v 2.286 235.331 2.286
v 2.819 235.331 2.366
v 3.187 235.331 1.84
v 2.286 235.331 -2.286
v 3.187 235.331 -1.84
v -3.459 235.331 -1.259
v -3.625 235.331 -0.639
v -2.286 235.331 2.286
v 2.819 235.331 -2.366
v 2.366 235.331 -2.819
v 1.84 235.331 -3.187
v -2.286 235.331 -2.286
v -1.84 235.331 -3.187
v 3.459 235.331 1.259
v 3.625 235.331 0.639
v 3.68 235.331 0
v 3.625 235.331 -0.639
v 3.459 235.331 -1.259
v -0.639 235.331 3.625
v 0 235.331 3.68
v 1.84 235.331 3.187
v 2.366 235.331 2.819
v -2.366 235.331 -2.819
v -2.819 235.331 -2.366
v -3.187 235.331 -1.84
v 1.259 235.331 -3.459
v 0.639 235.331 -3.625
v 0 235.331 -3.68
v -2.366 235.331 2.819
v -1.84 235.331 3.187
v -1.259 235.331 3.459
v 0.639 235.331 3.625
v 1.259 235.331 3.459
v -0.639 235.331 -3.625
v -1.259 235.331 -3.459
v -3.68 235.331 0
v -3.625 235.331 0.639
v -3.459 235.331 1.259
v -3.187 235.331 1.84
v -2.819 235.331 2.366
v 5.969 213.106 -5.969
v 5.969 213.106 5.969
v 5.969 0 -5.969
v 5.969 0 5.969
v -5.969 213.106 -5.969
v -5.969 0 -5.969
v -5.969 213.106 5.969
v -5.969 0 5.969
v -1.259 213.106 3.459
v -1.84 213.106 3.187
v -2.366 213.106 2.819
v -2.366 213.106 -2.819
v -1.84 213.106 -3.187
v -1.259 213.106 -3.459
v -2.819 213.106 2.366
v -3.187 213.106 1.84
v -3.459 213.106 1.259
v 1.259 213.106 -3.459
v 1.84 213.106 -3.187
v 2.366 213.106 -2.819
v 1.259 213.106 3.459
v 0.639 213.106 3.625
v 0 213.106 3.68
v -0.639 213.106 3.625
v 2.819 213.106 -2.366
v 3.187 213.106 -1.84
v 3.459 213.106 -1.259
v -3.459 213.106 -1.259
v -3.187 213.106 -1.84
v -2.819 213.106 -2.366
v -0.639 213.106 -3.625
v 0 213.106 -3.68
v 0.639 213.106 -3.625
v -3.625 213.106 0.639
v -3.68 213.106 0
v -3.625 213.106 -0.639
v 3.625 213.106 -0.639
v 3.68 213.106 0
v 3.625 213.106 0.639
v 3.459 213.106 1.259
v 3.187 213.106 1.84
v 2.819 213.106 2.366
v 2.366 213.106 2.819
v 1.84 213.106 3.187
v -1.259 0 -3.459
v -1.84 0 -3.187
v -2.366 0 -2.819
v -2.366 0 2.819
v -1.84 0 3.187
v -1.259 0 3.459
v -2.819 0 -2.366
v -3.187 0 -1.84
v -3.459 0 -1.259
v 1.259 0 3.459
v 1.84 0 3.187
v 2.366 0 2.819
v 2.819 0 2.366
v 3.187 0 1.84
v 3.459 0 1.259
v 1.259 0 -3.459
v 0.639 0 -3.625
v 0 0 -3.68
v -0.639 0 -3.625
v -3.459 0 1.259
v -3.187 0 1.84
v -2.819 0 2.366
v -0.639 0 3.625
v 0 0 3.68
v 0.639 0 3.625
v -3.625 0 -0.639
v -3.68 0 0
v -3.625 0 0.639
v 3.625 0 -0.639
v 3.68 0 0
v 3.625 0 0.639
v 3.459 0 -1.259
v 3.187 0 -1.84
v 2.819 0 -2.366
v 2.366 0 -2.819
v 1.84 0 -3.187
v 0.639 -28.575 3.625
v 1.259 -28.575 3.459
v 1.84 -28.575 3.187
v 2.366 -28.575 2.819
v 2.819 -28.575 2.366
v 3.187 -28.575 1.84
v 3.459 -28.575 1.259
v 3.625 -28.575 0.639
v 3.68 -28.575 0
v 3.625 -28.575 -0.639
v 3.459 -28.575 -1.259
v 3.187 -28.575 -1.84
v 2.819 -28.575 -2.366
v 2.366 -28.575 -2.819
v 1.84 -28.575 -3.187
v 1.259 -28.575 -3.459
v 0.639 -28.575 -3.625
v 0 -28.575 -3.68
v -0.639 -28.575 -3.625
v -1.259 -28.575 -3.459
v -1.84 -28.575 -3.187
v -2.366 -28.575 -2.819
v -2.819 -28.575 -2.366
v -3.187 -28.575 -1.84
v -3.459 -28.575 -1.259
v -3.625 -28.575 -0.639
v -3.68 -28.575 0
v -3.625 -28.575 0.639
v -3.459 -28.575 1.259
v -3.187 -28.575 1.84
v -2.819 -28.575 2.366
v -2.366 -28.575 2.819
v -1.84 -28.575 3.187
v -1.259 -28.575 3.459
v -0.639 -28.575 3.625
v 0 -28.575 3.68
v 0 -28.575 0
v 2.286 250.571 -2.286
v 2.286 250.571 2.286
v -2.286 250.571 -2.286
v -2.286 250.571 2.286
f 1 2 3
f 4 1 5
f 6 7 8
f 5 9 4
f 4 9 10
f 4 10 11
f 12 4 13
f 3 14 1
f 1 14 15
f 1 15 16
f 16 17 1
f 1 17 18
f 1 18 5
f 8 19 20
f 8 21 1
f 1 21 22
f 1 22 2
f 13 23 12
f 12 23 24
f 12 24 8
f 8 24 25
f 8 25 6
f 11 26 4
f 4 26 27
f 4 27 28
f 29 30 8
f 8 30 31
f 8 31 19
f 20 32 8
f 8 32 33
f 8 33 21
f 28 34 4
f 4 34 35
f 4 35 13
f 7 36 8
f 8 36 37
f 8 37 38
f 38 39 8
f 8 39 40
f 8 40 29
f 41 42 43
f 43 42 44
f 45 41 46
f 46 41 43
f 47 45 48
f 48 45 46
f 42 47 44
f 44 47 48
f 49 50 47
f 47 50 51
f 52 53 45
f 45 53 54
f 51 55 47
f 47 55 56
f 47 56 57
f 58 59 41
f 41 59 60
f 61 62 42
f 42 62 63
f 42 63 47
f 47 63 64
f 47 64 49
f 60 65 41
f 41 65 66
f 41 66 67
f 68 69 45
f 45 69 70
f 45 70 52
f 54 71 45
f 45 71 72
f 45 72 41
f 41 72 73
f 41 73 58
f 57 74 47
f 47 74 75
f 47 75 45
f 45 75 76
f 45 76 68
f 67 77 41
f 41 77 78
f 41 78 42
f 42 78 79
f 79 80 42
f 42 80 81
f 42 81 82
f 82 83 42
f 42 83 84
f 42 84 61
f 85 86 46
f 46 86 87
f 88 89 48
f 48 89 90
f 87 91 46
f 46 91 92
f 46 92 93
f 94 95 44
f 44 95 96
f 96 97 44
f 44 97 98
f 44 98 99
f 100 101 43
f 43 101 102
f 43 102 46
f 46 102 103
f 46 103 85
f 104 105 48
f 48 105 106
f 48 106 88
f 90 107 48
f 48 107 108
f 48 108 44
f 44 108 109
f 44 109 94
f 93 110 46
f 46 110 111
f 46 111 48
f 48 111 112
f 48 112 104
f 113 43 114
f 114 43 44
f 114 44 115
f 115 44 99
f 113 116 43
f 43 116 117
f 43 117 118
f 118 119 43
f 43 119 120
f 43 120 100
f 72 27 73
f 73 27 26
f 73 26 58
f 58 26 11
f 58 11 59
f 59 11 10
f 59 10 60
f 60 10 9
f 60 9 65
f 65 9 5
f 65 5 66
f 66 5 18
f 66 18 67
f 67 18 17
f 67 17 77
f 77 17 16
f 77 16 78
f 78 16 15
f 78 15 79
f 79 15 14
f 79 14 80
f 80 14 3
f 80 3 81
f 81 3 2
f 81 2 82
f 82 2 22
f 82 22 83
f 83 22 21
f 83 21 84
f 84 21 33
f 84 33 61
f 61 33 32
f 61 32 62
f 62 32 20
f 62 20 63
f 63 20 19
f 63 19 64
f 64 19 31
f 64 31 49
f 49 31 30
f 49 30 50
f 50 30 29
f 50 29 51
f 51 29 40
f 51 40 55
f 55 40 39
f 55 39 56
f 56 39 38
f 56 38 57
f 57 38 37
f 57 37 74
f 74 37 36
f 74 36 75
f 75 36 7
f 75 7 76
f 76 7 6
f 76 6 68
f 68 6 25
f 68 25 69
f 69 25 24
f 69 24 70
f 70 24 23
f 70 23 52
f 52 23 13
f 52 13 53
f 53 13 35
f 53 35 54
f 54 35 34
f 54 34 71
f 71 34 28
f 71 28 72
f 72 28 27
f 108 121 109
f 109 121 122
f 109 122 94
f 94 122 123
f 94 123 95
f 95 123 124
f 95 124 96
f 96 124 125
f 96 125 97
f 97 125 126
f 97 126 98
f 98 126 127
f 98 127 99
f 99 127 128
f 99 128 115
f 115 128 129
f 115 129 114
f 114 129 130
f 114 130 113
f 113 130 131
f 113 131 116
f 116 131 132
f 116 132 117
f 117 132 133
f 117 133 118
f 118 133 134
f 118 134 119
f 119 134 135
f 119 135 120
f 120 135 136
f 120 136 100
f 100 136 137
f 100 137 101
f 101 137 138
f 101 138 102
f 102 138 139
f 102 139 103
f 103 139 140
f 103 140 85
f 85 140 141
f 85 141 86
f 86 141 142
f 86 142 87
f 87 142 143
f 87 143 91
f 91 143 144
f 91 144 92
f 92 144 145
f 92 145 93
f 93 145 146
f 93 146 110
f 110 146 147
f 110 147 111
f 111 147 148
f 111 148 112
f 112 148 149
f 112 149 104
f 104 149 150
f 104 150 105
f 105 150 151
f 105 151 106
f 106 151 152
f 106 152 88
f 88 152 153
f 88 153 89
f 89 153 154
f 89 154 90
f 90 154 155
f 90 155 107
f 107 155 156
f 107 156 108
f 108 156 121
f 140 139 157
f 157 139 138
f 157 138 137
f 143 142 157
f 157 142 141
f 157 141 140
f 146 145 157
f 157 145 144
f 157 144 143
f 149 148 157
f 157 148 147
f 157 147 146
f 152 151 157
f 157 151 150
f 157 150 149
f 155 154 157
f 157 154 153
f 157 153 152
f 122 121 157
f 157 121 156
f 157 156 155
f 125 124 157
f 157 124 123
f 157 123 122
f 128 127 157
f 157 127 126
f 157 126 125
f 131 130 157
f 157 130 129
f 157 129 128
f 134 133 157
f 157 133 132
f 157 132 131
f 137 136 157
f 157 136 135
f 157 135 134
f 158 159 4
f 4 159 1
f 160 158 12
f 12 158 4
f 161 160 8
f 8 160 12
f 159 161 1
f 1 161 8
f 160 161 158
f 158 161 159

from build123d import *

# Parameters (mm, degrees)
SKETCH1_W           = 11.938
SKETCH1_H           = 11.938
BOSS_EXTRUDE1_DEPTH = 213.106
SKETCH2_R           = 3.68046
BOSS_EXTRUDE2_DEPTH = 22.225
SKETCH3_R           = 3.68046
BOSS_EXTRUDE3_DEPTH = 28.575
SKETCH4_W           = 4.572
SKETCH4_H           = 4.572
BOSS_EXTRUDE4_DEPTH = 15.24


with BuildPart() as part:
    # Sketch1 → Boss-Extrude1 (new body)
    with BuildSketch(Plane(origin=(0, 0, 0), x_dir=(1, 0, 0), z_dir=(0, 1, 0))):
        Rectangle(SKETCH1_W, SKETCH1_H)
    extrude(amount=BOSS_EXTRUDE1_DEPTH)

    # Sketch2 → Boss-Extrude2 (add)
    with BuildSketch(Plane(origin=(0, 213.106, 0), x_dir=(1, 0, 0), z_dir=(0, 1, 0))):
        Circle(SKETCH2_R)
    extrude(amount=BOSS_EXTRUDE2_DEPTH)

    # Sketch3 → Boss-Extrude3 (add)
    with BuildSketch(Plane(origin=(0, 0, 0), x_dir=(-1, 0, 0), z_dir=(0, -1, 0))):
        Circle(SKETCH3_R)
    extrude(amount=BOSS_EXTRUDE3_DEPTH)

    # Sketch4 → Boss-Extrude4 (add)
    with BuildSketch(Plane(origin=(0, 235.331, 0), x_dir=(1, 0, 0), z_dir=(0, 1, 0))):
        Rectangle(SKETCH4_W, SKETCH4_H)
    extrude(amount=BOSS_EXTRUDE4_DEPTH)


solid = part.part
